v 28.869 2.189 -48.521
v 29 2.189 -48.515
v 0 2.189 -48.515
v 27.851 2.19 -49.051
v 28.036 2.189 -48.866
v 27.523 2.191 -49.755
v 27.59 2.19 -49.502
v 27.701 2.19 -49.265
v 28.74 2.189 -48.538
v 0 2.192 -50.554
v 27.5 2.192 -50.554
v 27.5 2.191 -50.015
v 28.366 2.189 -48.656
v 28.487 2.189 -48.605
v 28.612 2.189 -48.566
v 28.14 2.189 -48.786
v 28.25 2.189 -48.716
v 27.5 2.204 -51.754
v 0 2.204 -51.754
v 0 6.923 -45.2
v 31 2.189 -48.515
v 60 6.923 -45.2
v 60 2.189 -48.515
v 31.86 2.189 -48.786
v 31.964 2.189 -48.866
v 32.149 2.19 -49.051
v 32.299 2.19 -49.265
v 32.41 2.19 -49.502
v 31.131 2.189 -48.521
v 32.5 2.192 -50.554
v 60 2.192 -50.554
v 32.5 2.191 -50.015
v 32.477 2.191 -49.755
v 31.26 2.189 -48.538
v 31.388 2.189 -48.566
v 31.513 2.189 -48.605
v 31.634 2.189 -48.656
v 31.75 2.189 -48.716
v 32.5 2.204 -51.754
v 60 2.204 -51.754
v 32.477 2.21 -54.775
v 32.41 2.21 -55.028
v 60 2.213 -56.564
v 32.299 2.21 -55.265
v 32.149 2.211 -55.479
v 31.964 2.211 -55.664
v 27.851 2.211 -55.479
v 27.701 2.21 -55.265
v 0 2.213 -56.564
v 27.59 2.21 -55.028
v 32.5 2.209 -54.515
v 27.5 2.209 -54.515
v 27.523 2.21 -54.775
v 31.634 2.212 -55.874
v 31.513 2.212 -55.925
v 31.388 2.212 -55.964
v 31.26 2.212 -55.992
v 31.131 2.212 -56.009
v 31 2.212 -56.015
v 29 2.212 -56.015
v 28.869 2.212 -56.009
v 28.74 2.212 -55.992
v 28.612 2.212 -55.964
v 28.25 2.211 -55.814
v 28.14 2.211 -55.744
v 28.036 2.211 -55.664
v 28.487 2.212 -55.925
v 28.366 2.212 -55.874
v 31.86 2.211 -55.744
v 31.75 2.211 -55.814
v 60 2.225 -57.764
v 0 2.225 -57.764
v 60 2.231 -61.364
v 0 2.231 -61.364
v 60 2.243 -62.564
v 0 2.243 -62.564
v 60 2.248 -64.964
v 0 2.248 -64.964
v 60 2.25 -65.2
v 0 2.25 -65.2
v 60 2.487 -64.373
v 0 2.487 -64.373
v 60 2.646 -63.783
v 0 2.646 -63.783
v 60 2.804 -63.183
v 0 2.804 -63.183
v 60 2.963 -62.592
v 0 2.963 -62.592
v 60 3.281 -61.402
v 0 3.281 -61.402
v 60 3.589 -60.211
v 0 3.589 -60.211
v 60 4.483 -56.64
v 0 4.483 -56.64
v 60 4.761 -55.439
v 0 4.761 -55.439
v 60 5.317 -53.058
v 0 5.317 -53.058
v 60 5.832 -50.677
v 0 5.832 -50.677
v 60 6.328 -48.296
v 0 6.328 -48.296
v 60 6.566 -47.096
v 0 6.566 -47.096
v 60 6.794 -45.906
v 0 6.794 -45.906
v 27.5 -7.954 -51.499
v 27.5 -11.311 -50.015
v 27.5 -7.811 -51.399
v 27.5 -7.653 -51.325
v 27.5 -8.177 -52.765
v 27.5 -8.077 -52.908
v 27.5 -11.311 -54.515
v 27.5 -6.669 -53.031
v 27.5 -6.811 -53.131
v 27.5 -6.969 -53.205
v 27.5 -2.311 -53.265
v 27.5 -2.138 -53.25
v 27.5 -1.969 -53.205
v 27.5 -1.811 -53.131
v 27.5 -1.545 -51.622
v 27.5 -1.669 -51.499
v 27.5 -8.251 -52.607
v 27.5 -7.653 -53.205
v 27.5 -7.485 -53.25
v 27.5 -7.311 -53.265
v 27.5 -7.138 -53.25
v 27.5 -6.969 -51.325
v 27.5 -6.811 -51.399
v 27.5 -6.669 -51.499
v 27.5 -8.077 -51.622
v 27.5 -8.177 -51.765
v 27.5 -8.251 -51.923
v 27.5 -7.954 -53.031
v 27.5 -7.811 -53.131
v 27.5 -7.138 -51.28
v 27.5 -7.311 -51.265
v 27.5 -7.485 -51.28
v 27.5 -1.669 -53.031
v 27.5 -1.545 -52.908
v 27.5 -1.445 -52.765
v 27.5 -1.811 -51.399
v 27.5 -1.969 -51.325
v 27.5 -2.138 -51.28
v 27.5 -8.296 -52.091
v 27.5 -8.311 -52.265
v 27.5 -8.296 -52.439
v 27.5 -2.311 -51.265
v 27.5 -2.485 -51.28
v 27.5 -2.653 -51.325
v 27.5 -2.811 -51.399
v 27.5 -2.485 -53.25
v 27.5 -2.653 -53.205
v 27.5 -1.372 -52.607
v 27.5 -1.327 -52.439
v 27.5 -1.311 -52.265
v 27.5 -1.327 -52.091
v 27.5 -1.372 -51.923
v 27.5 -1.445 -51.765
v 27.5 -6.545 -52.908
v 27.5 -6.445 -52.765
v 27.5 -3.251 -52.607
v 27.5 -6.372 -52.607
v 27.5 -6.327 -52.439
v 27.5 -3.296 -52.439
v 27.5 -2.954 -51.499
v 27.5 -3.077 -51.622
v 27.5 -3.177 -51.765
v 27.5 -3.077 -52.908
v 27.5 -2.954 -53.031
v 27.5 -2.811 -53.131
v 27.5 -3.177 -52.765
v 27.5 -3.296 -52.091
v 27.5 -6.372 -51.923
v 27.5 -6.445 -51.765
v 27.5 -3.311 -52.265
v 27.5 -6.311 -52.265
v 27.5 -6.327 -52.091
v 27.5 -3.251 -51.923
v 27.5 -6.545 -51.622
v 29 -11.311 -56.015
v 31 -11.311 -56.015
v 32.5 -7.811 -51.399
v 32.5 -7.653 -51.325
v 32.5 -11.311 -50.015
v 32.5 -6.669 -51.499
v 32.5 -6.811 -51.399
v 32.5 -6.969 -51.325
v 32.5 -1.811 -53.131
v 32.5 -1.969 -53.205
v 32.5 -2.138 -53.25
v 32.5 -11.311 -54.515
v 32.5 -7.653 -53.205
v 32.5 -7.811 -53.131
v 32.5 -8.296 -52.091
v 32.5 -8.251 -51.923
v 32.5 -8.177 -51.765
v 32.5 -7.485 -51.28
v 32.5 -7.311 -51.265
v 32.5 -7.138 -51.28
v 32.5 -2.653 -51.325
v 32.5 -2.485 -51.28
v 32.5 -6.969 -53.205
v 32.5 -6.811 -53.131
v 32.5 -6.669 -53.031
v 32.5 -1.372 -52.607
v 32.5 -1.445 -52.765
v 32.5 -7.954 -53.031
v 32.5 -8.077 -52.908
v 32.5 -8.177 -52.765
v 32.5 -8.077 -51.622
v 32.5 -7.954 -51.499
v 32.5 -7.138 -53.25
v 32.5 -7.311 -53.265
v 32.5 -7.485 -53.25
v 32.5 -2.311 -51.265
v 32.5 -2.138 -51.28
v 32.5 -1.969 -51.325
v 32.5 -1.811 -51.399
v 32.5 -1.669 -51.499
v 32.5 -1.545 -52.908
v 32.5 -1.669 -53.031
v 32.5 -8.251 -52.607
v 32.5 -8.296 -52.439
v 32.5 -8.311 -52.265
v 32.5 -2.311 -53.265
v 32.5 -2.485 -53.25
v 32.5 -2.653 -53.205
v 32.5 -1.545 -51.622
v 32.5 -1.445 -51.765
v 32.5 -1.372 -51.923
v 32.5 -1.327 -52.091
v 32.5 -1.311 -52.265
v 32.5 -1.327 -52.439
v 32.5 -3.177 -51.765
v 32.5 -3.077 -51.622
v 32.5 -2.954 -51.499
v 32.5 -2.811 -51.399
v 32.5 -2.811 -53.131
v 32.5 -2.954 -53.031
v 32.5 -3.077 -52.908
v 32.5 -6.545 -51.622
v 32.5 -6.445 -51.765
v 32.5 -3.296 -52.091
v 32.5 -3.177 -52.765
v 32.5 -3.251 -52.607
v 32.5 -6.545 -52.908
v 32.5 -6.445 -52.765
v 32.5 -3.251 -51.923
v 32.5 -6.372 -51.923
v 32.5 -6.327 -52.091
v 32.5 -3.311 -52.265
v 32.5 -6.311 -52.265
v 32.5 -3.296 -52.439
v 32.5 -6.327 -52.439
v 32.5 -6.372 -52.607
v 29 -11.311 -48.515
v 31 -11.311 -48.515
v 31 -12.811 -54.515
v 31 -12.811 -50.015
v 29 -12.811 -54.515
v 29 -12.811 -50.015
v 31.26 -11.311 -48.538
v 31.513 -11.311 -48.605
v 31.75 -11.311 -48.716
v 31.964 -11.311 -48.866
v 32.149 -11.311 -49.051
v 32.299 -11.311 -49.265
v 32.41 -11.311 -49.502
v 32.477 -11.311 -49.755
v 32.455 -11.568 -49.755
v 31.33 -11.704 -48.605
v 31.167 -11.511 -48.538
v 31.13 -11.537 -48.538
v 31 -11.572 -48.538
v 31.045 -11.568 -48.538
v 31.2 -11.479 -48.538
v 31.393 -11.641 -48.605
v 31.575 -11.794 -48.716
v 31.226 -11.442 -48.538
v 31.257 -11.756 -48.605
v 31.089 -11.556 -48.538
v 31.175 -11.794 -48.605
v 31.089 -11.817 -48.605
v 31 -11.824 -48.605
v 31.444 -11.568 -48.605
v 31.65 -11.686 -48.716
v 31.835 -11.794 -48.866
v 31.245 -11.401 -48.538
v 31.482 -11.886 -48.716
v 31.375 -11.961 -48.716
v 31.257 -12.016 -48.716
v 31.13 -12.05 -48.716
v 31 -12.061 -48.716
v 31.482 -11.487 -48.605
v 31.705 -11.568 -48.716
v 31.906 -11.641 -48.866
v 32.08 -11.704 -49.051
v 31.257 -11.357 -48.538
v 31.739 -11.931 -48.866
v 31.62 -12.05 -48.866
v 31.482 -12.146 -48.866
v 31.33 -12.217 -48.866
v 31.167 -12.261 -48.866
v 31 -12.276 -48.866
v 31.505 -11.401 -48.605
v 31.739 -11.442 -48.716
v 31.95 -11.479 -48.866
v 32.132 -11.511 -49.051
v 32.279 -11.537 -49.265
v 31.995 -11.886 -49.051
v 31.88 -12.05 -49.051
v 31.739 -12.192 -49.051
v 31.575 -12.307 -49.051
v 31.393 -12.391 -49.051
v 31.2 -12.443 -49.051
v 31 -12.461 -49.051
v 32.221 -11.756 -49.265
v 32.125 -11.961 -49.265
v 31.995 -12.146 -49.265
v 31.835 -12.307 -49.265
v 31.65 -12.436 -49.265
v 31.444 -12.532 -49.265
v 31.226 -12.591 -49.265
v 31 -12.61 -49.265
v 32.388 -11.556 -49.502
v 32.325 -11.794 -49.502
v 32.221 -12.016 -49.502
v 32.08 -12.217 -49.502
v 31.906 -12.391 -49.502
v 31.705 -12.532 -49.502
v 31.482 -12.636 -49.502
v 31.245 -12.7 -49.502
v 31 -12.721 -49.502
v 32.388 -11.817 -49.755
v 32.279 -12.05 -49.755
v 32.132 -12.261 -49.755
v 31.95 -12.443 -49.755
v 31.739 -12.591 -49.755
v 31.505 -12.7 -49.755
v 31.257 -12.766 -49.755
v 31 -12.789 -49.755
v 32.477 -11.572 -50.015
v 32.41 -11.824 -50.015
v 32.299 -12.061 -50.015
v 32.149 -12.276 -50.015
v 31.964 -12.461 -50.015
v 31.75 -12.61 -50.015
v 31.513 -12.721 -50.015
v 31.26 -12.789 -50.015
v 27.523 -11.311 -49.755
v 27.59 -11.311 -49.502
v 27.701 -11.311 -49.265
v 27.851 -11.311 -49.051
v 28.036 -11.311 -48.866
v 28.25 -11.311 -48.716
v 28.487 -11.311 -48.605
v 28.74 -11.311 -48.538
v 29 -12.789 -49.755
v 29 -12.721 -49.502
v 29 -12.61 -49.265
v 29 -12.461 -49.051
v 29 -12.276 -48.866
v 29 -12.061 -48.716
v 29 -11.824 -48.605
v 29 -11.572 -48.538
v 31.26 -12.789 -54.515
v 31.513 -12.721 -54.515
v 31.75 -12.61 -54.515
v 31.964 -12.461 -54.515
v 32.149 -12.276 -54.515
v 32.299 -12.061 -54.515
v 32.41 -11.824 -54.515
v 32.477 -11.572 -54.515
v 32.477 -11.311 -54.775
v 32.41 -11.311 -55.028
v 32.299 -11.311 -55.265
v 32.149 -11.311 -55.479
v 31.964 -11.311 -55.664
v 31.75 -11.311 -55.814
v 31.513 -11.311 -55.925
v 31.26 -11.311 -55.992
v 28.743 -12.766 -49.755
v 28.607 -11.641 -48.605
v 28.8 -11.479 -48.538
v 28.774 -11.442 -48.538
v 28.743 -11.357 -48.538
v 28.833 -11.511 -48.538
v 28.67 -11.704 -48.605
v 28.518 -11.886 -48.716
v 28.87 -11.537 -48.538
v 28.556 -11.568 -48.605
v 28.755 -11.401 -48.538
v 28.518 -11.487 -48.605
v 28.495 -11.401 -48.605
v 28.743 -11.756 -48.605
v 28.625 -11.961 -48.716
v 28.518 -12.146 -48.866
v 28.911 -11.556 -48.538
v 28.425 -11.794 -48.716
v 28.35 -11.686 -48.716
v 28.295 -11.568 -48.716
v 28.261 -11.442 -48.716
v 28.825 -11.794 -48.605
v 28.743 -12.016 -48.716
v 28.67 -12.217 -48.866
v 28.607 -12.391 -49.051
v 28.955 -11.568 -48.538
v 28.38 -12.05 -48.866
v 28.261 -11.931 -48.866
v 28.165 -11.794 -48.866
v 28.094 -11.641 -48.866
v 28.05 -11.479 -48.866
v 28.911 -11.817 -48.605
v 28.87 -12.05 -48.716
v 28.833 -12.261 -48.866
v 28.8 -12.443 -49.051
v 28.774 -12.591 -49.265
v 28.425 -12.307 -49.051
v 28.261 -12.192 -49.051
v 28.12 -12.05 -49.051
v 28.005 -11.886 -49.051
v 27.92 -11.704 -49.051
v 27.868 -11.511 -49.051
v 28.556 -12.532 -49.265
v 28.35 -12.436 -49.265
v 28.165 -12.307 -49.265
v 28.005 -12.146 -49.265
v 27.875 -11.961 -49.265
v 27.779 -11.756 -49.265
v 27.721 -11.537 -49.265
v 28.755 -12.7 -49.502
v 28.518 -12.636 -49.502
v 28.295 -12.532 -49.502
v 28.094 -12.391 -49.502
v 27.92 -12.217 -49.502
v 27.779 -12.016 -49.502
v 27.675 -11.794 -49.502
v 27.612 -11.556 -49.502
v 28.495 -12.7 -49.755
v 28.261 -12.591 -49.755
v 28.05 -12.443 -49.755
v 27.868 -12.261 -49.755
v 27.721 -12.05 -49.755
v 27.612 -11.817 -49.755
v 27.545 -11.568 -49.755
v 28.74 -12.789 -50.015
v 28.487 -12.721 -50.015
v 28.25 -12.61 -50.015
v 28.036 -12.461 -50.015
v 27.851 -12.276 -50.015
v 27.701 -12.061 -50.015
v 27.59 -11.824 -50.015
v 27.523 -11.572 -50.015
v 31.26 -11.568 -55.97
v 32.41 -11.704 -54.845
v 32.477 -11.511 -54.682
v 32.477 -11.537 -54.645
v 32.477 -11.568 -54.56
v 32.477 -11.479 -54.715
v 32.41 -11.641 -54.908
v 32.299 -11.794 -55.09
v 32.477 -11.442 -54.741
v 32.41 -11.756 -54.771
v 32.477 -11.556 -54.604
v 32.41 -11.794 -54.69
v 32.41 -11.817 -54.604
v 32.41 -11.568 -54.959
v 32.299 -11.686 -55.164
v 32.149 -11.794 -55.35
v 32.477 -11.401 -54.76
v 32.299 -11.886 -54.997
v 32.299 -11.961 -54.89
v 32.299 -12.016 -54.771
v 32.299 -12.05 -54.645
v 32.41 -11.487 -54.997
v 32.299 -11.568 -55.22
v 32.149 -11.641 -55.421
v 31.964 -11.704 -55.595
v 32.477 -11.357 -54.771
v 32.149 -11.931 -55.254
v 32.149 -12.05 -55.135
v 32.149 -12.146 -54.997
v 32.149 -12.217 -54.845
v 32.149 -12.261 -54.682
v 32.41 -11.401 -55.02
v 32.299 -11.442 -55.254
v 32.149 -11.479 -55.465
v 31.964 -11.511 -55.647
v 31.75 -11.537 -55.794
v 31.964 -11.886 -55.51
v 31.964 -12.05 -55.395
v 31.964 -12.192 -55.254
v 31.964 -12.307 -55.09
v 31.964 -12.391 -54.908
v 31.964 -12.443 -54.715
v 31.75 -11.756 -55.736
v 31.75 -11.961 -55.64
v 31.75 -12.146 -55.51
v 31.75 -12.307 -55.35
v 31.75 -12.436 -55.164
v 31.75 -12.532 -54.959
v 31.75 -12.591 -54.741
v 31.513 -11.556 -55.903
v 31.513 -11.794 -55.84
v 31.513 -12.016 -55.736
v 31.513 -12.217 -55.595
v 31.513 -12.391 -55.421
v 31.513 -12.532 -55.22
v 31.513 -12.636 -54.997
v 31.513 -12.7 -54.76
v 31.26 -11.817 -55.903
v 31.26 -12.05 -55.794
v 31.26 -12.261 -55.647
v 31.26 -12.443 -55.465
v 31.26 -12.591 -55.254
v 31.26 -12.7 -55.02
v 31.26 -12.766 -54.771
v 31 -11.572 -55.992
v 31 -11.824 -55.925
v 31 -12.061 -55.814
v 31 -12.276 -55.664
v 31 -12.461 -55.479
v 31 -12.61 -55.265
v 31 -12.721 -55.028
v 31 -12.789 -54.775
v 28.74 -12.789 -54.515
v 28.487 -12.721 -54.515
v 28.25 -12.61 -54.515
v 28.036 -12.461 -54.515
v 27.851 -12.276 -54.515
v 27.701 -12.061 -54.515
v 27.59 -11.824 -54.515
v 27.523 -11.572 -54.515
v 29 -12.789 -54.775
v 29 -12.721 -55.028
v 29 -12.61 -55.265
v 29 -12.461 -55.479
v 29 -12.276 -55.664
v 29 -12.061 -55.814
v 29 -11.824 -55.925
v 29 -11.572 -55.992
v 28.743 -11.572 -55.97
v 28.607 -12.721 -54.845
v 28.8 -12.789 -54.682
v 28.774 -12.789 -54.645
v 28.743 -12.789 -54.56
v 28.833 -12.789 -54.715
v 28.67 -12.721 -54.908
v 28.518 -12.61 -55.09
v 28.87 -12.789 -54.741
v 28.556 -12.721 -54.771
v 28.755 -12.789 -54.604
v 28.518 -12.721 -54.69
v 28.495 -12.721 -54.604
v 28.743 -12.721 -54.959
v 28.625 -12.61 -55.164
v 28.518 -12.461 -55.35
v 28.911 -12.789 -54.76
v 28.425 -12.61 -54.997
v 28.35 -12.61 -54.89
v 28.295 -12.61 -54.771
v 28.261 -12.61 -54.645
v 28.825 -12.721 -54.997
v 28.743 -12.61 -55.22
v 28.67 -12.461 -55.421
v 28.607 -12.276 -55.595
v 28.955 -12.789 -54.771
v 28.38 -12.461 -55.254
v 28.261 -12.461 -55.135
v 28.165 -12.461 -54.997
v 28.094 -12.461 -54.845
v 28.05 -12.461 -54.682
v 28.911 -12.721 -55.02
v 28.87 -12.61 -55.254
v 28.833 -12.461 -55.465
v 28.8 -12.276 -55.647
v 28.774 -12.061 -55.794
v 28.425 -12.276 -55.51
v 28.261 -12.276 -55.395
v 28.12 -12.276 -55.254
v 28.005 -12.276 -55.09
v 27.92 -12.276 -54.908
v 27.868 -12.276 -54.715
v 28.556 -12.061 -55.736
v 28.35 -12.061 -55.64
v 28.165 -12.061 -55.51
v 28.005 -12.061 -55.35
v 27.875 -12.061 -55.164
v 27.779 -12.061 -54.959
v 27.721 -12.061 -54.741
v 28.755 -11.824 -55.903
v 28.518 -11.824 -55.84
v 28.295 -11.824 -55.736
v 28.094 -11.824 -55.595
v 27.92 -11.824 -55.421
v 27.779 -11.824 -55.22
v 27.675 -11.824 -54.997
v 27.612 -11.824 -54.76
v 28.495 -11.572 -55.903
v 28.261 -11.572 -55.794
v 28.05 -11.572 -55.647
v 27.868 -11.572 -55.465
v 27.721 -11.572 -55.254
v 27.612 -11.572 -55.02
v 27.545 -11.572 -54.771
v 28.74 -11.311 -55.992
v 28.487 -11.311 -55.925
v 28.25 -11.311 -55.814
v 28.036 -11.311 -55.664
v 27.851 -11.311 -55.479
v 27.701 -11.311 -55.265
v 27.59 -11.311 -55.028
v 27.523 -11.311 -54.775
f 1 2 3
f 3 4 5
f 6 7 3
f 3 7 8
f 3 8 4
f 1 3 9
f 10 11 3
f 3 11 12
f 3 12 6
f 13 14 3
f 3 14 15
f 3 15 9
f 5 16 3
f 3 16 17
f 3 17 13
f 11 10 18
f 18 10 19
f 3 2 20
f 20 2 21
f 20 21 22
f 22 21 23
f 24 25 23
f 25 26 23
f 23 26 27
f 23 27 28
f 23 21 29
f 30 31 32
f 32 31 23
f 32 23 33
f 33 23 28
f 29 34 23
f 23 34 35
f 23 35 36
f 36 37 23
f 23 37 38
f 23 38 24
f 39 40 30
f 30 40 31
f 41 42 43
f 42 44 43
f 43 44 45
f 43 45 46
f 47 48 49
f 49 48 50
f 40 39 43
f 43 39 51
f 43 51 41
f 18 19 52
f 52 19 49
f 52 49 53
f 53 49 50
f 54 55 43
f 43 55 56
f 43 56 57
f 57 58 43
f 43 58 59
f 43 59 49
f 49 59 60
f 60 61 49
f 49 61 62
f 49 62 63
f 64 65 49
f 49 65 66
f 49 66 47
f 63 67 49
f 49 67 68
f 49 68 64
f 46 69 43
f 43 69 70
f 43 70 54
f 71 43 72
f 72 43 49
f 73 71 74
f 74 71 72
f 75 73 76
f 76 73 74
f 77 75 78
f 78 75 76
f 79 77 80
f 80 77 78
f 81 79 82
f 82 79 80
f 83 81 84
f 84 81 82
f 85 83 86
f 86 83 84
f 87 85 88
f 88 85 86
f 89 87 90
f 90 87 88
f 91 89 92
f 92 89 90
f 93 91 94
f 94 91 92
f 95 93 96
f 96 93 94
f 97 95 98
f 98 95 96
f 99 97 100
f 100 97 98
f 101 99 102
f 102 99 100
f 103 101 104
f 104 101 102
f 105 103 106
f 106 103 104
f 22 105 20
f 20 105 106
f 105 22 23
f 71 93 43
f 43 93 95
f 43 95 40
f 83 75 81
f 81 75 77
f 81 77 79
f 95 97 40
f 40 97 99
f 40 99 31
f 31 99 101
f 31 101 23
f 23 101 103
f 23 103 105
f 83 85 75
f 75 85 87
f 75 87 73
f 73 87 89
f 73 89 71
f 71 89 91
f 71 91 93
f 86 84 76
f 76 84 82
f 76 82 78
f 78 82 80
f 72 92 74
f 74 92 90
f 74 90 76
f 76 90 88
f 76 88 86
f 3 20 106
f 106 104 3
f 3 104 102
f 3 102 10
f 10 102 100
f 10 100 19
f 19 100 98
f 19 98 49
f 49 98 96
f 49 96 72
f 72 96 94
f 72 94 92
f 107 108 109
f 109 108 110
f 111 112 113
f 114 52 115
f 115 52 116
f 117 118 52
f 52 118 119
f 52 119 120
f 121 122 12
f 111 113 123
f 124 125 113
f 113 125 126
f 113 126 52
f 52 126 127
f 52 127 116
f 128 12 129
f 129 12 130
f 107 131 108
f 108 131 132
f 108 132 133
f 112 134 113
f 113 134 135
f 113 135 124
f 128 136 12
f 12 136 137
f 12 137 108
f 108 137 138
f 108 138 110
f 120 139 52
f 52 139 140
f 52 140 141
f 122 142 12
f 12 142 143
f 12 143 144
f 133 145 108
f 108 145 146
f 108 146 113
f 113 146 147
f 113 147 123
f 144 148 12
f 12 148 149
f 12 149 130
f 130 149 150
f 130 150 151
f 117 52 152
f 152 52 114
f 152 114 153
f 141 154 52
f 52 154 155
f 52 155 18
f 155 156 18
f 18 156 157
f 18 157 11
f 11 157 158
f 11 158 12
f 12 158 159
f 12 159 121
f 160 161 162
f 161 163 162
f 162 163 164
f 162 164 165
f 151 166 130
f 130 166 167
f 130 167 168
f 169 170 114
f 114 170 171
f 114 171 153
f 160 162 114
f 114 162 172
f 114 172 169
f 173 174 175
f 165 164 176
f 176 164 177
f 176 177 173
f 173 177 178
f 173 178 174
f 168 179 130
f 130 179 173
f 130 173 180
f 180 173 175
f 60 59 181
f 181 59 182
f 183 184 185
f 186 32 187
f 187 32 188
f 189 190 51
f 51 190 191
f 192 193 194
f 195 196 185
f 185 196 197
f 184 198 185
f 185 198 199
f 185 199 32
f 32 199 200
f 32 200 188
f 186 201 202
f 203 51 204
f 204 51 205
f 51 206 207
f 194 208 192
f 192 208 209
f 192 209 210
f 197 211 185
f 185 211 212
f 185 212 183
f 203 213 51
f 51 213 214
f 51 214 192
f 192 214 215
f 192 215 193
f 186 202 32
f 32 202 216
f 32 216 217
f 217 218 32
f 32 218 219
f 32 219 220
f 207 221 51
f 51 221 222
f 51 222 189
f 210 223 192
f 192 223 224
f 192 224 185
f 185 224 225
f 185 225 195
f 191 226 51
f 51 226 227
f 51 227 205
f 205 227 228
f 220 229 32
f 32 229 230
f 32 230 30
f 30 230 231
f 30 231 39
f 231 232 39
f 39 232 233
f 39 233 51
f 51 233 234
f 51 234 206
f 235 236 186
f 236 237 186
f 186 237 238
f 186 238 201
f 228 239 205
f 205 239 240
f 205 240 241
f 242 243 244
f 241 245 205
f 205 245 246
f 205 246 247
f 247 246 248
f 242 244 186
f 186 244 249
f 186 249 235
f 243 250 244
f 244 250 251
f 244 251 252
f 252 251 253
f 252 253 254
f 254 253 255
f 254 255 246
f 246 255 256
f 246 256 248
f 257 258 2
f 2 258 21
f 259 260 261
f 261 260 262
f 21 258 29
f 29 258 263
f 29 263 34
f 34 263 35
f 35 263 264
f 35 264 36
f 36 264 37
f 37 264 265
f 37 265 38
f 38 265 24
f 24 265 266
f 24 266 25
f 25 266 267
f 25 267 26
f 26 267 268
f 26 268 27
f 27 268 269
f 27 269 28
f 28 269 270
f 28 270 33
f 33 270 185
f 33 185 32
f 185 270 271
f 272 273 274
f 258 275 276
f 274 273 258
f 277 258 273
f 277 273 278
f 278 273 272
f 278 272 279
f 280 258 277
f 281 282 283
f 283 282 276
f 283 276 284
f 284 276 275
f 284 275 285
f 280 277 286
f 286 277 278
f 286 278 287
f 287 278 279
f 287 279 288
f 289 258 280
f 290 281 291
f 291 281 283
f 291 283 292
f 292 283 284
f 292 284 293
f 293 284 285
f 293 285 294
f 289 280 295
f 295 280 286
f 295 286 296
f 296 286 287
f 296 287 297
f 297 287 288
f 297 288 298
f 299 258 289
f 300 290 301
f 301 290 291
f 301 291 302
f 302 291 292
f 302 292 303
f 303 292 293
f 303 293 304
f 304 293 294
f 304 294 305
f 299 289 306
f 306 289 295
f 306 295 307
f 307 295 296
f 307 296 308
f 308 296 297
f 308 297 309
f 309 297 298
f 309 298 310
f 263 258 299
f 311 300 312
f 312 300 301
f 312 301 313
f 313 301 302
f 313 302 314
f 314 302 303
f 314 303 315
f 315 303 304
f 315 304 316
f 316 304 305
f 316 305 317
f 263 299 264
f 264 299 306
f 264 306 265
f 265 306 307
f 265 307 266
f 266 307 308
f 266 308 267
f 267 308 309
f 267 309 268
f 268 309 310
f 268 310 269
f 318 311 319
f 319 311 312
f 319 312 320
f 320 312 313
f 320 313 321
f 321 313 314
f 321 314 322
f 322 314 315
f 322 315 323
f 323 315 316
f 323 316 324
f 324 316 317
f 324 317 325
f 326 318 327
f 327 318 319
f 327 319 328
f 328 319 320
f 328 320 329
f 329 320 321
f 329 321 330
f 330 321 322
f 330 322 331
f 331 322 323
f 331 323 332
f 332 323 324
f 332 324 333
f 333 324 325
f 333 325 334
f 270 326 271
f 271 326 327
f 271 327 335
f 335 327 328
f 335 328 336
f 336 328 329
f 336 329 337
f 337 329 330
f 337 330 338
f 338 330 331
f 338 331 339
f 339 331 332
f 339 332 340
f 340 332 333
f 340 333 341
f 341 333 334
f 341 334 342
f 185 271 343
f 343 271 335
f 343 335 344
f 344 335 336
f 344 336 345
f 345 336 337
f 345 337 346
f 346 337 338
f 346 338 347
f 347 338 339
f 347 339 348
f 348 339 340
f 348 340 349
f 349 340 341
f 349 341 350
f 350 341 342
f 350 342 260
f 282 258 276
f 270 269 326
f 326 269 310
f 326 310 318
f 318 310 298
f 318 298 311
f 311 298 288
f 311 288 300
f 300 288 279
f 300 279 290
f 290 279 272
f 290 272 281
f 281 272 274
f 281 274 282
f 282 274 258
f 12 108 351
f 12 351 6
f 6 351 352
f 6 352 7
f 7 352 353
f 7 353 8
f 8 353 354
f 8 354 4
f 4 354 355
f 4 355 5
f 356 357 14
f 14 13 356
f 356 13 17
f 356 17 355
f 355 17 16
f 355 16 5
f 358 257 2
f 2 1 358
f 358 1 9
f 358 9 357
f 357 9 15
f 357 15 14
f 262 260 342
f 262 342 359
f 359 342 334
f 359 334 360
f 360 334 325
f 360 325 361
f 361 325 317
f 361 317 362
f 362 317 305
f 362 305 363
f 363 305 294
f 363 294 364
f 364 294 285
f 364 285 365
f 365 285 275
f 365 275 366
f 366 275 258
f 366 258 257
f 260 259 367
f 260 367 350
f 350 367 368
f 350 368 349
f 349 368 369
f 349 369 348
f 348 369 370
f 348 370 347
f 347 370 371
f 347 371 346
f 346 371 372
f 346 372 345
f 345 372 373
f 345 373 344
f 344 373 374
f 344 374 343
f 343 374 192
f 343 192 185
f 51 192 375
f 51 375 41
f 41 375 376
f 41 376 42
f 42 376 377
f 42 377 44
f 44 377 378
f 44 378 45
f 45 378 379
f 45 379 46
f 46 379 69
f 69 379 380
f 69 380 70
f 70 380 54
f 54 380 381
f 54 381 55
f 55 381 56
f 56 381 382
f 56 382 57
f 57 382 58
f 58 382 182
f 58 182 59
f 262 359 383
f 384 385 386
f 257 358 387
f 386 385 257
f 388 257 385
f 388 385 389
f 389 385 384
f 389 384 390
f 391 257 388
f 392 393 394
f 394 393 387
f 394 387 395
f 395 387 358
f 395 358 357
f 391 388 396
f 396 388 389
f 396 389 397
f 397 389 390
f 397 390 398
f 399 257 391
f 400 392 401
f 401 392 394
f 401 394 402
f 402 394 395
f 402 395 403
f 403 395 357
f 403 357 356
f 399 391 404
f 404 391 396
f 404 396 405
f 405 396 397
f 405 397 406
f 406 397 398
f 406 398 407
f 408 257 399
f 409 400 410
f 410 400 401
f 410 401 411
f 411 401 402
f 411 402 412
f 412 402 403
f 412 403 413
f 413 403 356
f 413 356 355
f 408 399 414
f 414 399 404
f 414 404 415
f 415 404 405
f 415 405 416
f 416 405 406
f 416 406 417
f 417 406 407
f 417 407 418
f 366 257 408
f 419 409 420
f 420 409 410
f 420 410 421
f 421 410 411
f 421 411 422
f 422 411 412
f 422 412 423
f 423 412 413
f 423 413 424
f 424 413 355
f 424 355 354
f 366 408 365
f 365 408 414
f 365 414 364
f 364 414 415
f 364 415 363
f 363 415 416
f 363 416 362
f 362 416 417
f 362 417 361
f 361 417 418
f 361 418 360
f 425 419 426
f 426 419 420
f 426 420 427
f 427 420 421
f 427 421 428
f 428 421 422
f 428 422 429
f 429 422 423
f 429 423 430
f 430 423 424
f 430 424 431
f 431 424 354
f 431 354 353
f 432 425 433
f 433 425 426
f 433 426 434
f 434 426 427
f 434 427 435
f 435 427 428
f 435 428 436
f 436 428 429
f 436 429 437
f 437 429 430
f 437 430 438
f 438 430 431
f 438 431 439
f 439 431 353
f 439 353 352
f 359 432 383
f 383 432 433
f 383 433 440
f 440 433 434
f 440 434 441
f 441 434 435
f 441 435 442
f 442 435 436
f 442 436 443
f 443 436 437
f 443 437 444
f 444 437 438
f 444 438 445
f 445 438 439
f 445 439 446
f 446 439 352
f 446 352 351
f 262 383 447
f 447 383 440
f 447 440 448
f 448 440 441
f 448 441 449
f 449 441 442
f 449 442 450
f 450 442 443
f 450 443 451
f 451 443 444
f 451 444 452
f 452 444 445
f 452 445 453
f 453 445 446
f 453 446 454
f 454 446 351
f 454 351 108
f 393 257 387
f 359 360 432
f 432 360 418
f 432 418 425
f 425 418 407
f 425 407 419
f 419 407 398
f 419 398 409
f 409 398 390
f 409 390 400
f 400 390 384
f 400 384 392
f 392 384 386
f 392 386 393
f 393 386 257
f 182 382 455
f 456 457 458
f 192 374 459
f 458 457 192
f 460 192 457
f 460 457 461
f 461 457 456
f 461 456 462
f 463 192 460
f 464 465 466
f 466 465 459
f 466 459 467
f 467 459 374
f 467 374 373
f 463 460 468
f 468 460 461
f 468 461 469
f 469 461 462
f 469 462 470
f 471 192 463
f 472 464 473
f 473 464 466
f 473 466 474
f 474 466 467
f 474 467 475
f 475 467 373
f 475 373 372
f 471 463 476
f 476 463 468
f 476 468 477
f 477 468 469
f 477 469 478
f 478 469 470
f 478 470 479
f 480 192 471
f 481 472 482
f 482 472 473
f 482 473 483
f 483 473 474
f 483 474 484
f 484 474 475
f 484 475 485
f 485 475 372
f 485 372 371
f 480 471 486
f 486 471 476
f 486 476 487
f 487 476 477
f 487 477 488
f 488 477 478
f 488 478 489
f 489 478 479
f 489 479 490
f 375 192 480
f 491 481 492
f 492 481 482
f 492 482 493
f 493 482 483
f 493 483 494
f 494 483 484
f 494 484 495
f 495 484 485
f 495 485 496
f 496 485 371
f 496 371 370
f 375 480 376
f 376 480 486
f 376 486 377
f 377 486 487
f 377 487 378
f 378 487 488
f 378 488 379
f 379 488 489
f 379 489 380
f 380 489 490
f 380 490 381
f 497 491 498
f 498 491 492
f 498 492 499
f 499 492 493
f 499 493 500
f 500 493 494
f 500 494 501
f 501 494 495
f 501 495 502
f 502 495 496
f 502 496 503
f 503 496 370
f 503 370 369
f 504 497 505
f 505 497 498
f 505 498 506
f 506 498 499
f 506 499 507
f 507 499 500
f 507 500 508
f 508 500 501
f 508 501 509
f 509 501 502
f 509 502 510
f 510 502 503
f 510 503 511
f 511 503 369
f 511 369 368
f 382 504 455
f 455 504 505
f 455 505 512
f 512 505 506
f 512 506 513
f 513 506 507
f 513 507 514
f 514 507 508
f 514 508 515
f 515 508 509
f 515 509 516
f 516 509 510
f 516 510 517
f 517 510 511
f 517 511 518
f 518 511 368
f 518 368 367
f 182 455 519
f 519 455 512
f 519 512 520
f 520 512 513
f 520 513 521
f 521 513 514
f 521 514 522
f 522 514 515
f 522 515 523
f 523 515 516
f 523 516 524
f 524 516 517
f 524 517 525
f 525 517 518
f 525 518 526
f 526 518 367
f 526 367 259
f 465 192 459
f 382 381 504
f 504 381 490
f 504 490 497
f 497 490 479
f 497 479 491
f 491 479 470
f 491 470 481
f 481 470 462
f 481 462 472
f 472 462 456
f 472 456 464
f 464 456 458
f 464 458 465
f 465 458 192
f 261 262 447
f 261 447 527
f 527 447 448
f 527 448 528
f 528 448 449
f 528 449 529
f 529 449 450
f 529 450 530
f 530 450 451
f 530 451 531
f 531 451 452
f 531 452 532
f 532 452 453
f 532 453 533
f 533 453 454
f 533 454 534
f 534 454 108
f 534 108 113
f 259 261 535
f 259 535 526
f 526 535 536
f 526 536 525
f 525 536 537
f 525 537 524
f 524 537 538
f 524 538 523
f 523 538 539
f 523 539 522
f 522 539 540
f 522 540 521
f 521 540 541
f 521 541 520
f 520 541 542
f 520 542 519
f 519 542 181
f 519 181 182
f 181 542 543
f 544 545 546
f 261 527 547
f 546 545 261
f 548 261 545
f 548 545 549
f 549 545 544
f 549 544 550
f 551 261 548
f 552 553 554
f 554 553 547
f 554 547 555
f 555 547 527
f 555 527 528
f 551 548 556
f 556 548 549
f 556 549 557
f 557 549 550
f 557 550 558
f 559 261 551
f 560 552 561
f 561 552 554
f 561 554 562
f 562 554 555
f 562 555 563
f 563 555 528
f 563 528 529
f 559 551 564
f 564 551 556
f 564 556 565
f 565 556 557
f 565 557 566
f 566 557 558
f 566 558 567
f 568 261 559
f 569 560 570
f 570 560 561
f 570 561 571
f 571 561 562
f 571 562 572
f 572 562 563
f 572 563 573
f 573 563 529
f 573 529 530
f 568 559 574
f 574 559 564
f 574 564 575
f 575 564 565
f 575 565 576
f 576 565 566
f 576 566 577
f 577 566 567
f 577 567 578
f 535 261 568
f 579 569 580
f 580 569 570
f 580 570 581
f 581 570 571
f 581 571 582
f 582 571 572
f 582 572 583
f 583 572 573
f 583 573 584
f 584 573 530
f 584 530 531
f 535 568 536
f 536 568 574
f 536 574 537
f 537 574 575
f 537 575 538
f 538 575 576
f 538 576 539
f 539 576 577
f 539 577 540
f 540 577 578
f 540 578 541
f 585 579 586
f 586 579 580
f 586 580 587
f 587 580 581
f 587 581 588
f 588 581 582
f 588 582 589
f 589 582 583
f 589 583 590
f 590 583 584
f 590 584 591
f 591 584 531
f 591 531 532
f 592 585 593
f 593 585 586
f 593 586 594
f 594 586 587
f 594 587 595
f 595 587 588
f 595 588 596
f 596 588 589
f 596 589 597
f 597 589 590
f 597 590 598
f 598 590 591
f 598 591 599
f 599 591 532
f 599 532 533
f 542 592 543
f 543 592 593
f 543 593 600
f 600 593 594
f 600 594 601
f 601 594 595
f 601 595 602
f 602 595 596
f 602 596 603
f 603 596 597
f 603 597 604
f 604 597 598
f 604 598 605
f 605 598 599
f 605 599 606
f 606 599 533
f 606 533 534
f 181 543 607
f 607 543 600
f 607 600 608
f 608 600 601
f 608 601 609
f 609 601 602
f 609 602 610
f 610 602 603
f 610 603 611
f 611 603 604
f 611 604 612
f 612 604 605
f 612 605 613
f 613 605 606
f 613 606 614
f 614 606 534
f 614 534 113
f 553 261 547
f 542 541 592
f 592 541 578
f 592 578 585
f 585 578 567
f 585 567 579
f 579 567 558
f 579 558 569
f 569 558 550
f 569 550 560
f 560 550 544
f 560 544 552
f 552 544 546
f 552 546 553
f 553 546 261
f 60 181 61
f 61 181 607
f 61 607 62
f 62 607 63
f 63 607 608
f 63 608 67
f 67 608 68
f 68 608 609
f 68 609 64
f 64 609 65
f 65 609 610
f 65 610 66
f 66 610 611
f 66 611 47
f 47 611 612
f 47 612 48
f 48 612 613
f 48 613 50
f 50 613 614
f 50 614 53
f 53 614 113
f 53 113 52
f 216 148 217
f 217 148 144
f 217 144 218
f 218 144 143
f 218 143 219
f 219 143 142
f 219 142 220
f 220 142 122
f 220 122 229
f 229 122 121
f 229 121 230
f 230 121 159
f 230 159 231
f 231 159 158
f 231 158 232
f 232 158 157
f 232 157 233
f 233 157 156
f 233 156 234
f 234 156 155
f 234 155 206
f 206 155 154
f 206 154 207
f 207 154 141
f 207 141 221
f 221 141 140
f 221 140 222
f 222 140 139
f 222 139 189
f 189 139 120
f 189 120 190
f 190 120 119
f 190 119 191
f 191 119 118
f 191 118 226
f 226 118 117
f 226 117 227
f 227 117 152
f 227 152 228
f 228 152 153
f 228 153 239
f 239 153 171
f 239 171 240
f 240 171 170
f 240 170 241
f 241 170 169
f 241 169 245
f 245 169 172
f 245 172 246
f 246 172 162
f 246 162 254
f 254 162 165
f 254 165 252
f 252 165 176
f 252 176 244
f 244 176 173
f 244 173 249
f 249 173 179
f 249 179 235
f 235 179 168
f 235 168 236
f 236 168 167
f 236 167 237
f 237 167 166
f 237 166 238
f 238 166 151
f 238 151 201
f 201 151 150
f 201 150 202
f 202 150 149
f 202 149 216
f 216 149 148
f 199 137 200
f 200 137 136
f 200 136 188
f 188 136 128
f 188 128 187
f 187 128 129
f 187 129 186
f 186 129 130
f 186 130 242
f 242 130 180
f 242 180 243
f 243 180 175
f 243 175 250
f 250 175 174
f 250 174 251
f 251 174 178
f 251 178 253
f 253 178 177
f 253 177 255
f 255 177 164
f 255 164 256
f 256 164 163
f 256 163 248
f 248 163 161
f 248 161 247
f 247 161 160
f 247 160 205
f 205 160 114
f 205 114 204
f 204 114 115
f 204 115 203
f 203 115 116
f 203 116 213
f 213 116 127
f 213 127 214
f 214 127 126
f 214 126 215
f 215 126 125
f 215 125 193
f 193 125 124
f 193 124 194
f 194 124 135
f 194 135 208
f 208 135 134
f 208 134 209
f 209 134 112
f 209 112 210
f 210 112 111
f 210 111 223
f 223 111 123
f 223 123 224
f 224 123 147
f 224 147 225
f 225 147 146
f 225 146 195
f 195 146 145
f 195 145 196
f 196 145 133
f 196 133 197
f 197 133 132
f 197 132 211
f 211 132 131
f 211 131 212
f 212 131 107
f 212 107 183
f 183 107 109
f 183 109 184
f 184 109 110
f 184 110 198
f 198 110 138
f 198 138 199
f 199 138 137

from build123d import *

# Parameters (mm, degrees)
BOSS_EXTRUDE1_DEPTH             = 60
BOSS_EXTRUDE2_REACH             = 90.732
SKETCH5_W                       = 5
SKETCH5_H                       = 7.5
BOSS_EXTRUDE2_DIRECTION_2_DEPTH = 15
FILLET1_R                       = 1.5
CUT_EXTRUDE1_REACH              = 75.969
SKETCH6_R                       = 1


# Read off the part's stored shape, not the designer's step: Boss-Extrude1
with BuildPart() as part:
    # Boss-Extrude1 outline → Boss-Extrude1 (new body)
    with BuildSketch(Plane(origin=(0, 0, 0), x_dir=(0, 0, -1), z_dir=(1, 0, 0))):
        Polygon((45.19977735, 6.923160404), (48.514979298, 2.188561349), (50.553744228, 2.192162497), (51.753724693, 2.204282084), (56.563717189, 2.212778158), (57.763697654, 2.224897745), (61.363692038, 2.231256553), (62.563672503, 2.24337614), (64.963668759, 2.247615346), (65.19977735, 2.25), (64.373245759, 2.486572833), (63.782964065, 2.645530446), (63.182682388, 2.804470395), (62.592400694, 2.963428007), (61.401837323, 3.281325569), (60.211291616, 3.589223146), (56.639707483, 4.482915924), (55.439214781, 4.760795885), (53.058229346, 5.316591132), (50.677314564, 5.832386443), (48.296435109, 6.328181784), (47.09601306, 6.566061807), (45.905608659, 6.793959509), align=None)
    extrude(amount=BOSS_EXTRUDE1_DEPTH)

    # Sketch5 → Boss-Extrude2 (add, up to next)
    with BuildSketch(Plane(origin=(0, 2.188561349, 0), x_dir=(1, 0, 0), z_dir=(0, 1, 0)), mode=Mode.PRIVATE) as boss_extrude2_sk1:
        with Locations((30, 52.264979298)):
            Rectangle(SKETCH5_W, SKETCH5_H)
    boss_extrude2_tool1 = extrude(boss_extrude2_sk1.sketch, amount=BOSS_EXTRUDE2_REACH, mode=Mode.PRIVATE) - part.part
    add(boss_extrude2_tool1.solids().sort_by_distance((30, 2.188561, -52.264979))[0])

    # Sketch5 → Boss-Extrude2 direction 2 (add)
    with BuildSketch(Plane(origin=(0, 2.188561349, 0), x_dir=(1, 0, 0), z_dir=(0, 1, 0))):
        with Locations((30, 52.264979298)):
            Rectangle(SKETCH5_W, SKETCH5_H)
    extrude(amount=-BOSS_EXTRUDE2_DIRECTION_2_DEPTH)

    # Fillet1
    fillet1_edges = [part.edges().sort_by_distance(p)[0] for p in [
        (27.5, -5.311438651, -48.514979298),
        (27.5, -12.811438651, -52.264979298),
        (27.5, -5.299814875, -56.014979298),
        (30, -12.811438651, -56.014979298),
        (32.5, -5.299814875, -56.014979298),
        (32.5, -12.811438651, -52.264979298),
        (30, -12.811438651, -48.514979298),
        (32.5, -5.311438651, -48.514979298),
    ]]
    fillet(fillet1_edges, radius=FILLET1_R)

    # Sketch6 → Cut-Extrude1 (cut, up to next)
    with BuildSketch(Plane.ZY.offset(-27.5), mode=Mode.PRIVATE) as cut_extrude1_sk1:
        with Locations((-52.264979298, -7.311438651)):
            Circle(SKETCH6_R)
    cut_extrude1_tool1 = extrude(cut_extrude1_sk1.sketch, amount=-CUT_EXTRUDE1_REACH, mode=Mode.PRIVATE) & part.part
    # Sketch6 → Cut-Extrude1 (cut, up to next)
    with BuildSketch(Plane.ZY.offset(-27.5), mode=Mode.PRIVATE) as cut_extrude1_sk2:
        with Locations((-52.264979298, -2.311438651)):
            Circle(SKETCH6_R)
    cut_extrude1_tool2 = extrude(cut_extrude1_sk2.sketch, amount=-CUT_EXTRUDE1_REACH, mode=Mode.PRIVATE) & part.part
    add(cut_extrude1_tool1.solids().sort_by_distance((27.5, -7.311439, -52.264979))[0], mode=Mode.SUBTRACT)
    add(cut_extrude1_tool2.solids().sort_by_distance((27.5, -2.311439, -52.264979))[0], mode=Mode.SUBTRACT)


solid = part.part
